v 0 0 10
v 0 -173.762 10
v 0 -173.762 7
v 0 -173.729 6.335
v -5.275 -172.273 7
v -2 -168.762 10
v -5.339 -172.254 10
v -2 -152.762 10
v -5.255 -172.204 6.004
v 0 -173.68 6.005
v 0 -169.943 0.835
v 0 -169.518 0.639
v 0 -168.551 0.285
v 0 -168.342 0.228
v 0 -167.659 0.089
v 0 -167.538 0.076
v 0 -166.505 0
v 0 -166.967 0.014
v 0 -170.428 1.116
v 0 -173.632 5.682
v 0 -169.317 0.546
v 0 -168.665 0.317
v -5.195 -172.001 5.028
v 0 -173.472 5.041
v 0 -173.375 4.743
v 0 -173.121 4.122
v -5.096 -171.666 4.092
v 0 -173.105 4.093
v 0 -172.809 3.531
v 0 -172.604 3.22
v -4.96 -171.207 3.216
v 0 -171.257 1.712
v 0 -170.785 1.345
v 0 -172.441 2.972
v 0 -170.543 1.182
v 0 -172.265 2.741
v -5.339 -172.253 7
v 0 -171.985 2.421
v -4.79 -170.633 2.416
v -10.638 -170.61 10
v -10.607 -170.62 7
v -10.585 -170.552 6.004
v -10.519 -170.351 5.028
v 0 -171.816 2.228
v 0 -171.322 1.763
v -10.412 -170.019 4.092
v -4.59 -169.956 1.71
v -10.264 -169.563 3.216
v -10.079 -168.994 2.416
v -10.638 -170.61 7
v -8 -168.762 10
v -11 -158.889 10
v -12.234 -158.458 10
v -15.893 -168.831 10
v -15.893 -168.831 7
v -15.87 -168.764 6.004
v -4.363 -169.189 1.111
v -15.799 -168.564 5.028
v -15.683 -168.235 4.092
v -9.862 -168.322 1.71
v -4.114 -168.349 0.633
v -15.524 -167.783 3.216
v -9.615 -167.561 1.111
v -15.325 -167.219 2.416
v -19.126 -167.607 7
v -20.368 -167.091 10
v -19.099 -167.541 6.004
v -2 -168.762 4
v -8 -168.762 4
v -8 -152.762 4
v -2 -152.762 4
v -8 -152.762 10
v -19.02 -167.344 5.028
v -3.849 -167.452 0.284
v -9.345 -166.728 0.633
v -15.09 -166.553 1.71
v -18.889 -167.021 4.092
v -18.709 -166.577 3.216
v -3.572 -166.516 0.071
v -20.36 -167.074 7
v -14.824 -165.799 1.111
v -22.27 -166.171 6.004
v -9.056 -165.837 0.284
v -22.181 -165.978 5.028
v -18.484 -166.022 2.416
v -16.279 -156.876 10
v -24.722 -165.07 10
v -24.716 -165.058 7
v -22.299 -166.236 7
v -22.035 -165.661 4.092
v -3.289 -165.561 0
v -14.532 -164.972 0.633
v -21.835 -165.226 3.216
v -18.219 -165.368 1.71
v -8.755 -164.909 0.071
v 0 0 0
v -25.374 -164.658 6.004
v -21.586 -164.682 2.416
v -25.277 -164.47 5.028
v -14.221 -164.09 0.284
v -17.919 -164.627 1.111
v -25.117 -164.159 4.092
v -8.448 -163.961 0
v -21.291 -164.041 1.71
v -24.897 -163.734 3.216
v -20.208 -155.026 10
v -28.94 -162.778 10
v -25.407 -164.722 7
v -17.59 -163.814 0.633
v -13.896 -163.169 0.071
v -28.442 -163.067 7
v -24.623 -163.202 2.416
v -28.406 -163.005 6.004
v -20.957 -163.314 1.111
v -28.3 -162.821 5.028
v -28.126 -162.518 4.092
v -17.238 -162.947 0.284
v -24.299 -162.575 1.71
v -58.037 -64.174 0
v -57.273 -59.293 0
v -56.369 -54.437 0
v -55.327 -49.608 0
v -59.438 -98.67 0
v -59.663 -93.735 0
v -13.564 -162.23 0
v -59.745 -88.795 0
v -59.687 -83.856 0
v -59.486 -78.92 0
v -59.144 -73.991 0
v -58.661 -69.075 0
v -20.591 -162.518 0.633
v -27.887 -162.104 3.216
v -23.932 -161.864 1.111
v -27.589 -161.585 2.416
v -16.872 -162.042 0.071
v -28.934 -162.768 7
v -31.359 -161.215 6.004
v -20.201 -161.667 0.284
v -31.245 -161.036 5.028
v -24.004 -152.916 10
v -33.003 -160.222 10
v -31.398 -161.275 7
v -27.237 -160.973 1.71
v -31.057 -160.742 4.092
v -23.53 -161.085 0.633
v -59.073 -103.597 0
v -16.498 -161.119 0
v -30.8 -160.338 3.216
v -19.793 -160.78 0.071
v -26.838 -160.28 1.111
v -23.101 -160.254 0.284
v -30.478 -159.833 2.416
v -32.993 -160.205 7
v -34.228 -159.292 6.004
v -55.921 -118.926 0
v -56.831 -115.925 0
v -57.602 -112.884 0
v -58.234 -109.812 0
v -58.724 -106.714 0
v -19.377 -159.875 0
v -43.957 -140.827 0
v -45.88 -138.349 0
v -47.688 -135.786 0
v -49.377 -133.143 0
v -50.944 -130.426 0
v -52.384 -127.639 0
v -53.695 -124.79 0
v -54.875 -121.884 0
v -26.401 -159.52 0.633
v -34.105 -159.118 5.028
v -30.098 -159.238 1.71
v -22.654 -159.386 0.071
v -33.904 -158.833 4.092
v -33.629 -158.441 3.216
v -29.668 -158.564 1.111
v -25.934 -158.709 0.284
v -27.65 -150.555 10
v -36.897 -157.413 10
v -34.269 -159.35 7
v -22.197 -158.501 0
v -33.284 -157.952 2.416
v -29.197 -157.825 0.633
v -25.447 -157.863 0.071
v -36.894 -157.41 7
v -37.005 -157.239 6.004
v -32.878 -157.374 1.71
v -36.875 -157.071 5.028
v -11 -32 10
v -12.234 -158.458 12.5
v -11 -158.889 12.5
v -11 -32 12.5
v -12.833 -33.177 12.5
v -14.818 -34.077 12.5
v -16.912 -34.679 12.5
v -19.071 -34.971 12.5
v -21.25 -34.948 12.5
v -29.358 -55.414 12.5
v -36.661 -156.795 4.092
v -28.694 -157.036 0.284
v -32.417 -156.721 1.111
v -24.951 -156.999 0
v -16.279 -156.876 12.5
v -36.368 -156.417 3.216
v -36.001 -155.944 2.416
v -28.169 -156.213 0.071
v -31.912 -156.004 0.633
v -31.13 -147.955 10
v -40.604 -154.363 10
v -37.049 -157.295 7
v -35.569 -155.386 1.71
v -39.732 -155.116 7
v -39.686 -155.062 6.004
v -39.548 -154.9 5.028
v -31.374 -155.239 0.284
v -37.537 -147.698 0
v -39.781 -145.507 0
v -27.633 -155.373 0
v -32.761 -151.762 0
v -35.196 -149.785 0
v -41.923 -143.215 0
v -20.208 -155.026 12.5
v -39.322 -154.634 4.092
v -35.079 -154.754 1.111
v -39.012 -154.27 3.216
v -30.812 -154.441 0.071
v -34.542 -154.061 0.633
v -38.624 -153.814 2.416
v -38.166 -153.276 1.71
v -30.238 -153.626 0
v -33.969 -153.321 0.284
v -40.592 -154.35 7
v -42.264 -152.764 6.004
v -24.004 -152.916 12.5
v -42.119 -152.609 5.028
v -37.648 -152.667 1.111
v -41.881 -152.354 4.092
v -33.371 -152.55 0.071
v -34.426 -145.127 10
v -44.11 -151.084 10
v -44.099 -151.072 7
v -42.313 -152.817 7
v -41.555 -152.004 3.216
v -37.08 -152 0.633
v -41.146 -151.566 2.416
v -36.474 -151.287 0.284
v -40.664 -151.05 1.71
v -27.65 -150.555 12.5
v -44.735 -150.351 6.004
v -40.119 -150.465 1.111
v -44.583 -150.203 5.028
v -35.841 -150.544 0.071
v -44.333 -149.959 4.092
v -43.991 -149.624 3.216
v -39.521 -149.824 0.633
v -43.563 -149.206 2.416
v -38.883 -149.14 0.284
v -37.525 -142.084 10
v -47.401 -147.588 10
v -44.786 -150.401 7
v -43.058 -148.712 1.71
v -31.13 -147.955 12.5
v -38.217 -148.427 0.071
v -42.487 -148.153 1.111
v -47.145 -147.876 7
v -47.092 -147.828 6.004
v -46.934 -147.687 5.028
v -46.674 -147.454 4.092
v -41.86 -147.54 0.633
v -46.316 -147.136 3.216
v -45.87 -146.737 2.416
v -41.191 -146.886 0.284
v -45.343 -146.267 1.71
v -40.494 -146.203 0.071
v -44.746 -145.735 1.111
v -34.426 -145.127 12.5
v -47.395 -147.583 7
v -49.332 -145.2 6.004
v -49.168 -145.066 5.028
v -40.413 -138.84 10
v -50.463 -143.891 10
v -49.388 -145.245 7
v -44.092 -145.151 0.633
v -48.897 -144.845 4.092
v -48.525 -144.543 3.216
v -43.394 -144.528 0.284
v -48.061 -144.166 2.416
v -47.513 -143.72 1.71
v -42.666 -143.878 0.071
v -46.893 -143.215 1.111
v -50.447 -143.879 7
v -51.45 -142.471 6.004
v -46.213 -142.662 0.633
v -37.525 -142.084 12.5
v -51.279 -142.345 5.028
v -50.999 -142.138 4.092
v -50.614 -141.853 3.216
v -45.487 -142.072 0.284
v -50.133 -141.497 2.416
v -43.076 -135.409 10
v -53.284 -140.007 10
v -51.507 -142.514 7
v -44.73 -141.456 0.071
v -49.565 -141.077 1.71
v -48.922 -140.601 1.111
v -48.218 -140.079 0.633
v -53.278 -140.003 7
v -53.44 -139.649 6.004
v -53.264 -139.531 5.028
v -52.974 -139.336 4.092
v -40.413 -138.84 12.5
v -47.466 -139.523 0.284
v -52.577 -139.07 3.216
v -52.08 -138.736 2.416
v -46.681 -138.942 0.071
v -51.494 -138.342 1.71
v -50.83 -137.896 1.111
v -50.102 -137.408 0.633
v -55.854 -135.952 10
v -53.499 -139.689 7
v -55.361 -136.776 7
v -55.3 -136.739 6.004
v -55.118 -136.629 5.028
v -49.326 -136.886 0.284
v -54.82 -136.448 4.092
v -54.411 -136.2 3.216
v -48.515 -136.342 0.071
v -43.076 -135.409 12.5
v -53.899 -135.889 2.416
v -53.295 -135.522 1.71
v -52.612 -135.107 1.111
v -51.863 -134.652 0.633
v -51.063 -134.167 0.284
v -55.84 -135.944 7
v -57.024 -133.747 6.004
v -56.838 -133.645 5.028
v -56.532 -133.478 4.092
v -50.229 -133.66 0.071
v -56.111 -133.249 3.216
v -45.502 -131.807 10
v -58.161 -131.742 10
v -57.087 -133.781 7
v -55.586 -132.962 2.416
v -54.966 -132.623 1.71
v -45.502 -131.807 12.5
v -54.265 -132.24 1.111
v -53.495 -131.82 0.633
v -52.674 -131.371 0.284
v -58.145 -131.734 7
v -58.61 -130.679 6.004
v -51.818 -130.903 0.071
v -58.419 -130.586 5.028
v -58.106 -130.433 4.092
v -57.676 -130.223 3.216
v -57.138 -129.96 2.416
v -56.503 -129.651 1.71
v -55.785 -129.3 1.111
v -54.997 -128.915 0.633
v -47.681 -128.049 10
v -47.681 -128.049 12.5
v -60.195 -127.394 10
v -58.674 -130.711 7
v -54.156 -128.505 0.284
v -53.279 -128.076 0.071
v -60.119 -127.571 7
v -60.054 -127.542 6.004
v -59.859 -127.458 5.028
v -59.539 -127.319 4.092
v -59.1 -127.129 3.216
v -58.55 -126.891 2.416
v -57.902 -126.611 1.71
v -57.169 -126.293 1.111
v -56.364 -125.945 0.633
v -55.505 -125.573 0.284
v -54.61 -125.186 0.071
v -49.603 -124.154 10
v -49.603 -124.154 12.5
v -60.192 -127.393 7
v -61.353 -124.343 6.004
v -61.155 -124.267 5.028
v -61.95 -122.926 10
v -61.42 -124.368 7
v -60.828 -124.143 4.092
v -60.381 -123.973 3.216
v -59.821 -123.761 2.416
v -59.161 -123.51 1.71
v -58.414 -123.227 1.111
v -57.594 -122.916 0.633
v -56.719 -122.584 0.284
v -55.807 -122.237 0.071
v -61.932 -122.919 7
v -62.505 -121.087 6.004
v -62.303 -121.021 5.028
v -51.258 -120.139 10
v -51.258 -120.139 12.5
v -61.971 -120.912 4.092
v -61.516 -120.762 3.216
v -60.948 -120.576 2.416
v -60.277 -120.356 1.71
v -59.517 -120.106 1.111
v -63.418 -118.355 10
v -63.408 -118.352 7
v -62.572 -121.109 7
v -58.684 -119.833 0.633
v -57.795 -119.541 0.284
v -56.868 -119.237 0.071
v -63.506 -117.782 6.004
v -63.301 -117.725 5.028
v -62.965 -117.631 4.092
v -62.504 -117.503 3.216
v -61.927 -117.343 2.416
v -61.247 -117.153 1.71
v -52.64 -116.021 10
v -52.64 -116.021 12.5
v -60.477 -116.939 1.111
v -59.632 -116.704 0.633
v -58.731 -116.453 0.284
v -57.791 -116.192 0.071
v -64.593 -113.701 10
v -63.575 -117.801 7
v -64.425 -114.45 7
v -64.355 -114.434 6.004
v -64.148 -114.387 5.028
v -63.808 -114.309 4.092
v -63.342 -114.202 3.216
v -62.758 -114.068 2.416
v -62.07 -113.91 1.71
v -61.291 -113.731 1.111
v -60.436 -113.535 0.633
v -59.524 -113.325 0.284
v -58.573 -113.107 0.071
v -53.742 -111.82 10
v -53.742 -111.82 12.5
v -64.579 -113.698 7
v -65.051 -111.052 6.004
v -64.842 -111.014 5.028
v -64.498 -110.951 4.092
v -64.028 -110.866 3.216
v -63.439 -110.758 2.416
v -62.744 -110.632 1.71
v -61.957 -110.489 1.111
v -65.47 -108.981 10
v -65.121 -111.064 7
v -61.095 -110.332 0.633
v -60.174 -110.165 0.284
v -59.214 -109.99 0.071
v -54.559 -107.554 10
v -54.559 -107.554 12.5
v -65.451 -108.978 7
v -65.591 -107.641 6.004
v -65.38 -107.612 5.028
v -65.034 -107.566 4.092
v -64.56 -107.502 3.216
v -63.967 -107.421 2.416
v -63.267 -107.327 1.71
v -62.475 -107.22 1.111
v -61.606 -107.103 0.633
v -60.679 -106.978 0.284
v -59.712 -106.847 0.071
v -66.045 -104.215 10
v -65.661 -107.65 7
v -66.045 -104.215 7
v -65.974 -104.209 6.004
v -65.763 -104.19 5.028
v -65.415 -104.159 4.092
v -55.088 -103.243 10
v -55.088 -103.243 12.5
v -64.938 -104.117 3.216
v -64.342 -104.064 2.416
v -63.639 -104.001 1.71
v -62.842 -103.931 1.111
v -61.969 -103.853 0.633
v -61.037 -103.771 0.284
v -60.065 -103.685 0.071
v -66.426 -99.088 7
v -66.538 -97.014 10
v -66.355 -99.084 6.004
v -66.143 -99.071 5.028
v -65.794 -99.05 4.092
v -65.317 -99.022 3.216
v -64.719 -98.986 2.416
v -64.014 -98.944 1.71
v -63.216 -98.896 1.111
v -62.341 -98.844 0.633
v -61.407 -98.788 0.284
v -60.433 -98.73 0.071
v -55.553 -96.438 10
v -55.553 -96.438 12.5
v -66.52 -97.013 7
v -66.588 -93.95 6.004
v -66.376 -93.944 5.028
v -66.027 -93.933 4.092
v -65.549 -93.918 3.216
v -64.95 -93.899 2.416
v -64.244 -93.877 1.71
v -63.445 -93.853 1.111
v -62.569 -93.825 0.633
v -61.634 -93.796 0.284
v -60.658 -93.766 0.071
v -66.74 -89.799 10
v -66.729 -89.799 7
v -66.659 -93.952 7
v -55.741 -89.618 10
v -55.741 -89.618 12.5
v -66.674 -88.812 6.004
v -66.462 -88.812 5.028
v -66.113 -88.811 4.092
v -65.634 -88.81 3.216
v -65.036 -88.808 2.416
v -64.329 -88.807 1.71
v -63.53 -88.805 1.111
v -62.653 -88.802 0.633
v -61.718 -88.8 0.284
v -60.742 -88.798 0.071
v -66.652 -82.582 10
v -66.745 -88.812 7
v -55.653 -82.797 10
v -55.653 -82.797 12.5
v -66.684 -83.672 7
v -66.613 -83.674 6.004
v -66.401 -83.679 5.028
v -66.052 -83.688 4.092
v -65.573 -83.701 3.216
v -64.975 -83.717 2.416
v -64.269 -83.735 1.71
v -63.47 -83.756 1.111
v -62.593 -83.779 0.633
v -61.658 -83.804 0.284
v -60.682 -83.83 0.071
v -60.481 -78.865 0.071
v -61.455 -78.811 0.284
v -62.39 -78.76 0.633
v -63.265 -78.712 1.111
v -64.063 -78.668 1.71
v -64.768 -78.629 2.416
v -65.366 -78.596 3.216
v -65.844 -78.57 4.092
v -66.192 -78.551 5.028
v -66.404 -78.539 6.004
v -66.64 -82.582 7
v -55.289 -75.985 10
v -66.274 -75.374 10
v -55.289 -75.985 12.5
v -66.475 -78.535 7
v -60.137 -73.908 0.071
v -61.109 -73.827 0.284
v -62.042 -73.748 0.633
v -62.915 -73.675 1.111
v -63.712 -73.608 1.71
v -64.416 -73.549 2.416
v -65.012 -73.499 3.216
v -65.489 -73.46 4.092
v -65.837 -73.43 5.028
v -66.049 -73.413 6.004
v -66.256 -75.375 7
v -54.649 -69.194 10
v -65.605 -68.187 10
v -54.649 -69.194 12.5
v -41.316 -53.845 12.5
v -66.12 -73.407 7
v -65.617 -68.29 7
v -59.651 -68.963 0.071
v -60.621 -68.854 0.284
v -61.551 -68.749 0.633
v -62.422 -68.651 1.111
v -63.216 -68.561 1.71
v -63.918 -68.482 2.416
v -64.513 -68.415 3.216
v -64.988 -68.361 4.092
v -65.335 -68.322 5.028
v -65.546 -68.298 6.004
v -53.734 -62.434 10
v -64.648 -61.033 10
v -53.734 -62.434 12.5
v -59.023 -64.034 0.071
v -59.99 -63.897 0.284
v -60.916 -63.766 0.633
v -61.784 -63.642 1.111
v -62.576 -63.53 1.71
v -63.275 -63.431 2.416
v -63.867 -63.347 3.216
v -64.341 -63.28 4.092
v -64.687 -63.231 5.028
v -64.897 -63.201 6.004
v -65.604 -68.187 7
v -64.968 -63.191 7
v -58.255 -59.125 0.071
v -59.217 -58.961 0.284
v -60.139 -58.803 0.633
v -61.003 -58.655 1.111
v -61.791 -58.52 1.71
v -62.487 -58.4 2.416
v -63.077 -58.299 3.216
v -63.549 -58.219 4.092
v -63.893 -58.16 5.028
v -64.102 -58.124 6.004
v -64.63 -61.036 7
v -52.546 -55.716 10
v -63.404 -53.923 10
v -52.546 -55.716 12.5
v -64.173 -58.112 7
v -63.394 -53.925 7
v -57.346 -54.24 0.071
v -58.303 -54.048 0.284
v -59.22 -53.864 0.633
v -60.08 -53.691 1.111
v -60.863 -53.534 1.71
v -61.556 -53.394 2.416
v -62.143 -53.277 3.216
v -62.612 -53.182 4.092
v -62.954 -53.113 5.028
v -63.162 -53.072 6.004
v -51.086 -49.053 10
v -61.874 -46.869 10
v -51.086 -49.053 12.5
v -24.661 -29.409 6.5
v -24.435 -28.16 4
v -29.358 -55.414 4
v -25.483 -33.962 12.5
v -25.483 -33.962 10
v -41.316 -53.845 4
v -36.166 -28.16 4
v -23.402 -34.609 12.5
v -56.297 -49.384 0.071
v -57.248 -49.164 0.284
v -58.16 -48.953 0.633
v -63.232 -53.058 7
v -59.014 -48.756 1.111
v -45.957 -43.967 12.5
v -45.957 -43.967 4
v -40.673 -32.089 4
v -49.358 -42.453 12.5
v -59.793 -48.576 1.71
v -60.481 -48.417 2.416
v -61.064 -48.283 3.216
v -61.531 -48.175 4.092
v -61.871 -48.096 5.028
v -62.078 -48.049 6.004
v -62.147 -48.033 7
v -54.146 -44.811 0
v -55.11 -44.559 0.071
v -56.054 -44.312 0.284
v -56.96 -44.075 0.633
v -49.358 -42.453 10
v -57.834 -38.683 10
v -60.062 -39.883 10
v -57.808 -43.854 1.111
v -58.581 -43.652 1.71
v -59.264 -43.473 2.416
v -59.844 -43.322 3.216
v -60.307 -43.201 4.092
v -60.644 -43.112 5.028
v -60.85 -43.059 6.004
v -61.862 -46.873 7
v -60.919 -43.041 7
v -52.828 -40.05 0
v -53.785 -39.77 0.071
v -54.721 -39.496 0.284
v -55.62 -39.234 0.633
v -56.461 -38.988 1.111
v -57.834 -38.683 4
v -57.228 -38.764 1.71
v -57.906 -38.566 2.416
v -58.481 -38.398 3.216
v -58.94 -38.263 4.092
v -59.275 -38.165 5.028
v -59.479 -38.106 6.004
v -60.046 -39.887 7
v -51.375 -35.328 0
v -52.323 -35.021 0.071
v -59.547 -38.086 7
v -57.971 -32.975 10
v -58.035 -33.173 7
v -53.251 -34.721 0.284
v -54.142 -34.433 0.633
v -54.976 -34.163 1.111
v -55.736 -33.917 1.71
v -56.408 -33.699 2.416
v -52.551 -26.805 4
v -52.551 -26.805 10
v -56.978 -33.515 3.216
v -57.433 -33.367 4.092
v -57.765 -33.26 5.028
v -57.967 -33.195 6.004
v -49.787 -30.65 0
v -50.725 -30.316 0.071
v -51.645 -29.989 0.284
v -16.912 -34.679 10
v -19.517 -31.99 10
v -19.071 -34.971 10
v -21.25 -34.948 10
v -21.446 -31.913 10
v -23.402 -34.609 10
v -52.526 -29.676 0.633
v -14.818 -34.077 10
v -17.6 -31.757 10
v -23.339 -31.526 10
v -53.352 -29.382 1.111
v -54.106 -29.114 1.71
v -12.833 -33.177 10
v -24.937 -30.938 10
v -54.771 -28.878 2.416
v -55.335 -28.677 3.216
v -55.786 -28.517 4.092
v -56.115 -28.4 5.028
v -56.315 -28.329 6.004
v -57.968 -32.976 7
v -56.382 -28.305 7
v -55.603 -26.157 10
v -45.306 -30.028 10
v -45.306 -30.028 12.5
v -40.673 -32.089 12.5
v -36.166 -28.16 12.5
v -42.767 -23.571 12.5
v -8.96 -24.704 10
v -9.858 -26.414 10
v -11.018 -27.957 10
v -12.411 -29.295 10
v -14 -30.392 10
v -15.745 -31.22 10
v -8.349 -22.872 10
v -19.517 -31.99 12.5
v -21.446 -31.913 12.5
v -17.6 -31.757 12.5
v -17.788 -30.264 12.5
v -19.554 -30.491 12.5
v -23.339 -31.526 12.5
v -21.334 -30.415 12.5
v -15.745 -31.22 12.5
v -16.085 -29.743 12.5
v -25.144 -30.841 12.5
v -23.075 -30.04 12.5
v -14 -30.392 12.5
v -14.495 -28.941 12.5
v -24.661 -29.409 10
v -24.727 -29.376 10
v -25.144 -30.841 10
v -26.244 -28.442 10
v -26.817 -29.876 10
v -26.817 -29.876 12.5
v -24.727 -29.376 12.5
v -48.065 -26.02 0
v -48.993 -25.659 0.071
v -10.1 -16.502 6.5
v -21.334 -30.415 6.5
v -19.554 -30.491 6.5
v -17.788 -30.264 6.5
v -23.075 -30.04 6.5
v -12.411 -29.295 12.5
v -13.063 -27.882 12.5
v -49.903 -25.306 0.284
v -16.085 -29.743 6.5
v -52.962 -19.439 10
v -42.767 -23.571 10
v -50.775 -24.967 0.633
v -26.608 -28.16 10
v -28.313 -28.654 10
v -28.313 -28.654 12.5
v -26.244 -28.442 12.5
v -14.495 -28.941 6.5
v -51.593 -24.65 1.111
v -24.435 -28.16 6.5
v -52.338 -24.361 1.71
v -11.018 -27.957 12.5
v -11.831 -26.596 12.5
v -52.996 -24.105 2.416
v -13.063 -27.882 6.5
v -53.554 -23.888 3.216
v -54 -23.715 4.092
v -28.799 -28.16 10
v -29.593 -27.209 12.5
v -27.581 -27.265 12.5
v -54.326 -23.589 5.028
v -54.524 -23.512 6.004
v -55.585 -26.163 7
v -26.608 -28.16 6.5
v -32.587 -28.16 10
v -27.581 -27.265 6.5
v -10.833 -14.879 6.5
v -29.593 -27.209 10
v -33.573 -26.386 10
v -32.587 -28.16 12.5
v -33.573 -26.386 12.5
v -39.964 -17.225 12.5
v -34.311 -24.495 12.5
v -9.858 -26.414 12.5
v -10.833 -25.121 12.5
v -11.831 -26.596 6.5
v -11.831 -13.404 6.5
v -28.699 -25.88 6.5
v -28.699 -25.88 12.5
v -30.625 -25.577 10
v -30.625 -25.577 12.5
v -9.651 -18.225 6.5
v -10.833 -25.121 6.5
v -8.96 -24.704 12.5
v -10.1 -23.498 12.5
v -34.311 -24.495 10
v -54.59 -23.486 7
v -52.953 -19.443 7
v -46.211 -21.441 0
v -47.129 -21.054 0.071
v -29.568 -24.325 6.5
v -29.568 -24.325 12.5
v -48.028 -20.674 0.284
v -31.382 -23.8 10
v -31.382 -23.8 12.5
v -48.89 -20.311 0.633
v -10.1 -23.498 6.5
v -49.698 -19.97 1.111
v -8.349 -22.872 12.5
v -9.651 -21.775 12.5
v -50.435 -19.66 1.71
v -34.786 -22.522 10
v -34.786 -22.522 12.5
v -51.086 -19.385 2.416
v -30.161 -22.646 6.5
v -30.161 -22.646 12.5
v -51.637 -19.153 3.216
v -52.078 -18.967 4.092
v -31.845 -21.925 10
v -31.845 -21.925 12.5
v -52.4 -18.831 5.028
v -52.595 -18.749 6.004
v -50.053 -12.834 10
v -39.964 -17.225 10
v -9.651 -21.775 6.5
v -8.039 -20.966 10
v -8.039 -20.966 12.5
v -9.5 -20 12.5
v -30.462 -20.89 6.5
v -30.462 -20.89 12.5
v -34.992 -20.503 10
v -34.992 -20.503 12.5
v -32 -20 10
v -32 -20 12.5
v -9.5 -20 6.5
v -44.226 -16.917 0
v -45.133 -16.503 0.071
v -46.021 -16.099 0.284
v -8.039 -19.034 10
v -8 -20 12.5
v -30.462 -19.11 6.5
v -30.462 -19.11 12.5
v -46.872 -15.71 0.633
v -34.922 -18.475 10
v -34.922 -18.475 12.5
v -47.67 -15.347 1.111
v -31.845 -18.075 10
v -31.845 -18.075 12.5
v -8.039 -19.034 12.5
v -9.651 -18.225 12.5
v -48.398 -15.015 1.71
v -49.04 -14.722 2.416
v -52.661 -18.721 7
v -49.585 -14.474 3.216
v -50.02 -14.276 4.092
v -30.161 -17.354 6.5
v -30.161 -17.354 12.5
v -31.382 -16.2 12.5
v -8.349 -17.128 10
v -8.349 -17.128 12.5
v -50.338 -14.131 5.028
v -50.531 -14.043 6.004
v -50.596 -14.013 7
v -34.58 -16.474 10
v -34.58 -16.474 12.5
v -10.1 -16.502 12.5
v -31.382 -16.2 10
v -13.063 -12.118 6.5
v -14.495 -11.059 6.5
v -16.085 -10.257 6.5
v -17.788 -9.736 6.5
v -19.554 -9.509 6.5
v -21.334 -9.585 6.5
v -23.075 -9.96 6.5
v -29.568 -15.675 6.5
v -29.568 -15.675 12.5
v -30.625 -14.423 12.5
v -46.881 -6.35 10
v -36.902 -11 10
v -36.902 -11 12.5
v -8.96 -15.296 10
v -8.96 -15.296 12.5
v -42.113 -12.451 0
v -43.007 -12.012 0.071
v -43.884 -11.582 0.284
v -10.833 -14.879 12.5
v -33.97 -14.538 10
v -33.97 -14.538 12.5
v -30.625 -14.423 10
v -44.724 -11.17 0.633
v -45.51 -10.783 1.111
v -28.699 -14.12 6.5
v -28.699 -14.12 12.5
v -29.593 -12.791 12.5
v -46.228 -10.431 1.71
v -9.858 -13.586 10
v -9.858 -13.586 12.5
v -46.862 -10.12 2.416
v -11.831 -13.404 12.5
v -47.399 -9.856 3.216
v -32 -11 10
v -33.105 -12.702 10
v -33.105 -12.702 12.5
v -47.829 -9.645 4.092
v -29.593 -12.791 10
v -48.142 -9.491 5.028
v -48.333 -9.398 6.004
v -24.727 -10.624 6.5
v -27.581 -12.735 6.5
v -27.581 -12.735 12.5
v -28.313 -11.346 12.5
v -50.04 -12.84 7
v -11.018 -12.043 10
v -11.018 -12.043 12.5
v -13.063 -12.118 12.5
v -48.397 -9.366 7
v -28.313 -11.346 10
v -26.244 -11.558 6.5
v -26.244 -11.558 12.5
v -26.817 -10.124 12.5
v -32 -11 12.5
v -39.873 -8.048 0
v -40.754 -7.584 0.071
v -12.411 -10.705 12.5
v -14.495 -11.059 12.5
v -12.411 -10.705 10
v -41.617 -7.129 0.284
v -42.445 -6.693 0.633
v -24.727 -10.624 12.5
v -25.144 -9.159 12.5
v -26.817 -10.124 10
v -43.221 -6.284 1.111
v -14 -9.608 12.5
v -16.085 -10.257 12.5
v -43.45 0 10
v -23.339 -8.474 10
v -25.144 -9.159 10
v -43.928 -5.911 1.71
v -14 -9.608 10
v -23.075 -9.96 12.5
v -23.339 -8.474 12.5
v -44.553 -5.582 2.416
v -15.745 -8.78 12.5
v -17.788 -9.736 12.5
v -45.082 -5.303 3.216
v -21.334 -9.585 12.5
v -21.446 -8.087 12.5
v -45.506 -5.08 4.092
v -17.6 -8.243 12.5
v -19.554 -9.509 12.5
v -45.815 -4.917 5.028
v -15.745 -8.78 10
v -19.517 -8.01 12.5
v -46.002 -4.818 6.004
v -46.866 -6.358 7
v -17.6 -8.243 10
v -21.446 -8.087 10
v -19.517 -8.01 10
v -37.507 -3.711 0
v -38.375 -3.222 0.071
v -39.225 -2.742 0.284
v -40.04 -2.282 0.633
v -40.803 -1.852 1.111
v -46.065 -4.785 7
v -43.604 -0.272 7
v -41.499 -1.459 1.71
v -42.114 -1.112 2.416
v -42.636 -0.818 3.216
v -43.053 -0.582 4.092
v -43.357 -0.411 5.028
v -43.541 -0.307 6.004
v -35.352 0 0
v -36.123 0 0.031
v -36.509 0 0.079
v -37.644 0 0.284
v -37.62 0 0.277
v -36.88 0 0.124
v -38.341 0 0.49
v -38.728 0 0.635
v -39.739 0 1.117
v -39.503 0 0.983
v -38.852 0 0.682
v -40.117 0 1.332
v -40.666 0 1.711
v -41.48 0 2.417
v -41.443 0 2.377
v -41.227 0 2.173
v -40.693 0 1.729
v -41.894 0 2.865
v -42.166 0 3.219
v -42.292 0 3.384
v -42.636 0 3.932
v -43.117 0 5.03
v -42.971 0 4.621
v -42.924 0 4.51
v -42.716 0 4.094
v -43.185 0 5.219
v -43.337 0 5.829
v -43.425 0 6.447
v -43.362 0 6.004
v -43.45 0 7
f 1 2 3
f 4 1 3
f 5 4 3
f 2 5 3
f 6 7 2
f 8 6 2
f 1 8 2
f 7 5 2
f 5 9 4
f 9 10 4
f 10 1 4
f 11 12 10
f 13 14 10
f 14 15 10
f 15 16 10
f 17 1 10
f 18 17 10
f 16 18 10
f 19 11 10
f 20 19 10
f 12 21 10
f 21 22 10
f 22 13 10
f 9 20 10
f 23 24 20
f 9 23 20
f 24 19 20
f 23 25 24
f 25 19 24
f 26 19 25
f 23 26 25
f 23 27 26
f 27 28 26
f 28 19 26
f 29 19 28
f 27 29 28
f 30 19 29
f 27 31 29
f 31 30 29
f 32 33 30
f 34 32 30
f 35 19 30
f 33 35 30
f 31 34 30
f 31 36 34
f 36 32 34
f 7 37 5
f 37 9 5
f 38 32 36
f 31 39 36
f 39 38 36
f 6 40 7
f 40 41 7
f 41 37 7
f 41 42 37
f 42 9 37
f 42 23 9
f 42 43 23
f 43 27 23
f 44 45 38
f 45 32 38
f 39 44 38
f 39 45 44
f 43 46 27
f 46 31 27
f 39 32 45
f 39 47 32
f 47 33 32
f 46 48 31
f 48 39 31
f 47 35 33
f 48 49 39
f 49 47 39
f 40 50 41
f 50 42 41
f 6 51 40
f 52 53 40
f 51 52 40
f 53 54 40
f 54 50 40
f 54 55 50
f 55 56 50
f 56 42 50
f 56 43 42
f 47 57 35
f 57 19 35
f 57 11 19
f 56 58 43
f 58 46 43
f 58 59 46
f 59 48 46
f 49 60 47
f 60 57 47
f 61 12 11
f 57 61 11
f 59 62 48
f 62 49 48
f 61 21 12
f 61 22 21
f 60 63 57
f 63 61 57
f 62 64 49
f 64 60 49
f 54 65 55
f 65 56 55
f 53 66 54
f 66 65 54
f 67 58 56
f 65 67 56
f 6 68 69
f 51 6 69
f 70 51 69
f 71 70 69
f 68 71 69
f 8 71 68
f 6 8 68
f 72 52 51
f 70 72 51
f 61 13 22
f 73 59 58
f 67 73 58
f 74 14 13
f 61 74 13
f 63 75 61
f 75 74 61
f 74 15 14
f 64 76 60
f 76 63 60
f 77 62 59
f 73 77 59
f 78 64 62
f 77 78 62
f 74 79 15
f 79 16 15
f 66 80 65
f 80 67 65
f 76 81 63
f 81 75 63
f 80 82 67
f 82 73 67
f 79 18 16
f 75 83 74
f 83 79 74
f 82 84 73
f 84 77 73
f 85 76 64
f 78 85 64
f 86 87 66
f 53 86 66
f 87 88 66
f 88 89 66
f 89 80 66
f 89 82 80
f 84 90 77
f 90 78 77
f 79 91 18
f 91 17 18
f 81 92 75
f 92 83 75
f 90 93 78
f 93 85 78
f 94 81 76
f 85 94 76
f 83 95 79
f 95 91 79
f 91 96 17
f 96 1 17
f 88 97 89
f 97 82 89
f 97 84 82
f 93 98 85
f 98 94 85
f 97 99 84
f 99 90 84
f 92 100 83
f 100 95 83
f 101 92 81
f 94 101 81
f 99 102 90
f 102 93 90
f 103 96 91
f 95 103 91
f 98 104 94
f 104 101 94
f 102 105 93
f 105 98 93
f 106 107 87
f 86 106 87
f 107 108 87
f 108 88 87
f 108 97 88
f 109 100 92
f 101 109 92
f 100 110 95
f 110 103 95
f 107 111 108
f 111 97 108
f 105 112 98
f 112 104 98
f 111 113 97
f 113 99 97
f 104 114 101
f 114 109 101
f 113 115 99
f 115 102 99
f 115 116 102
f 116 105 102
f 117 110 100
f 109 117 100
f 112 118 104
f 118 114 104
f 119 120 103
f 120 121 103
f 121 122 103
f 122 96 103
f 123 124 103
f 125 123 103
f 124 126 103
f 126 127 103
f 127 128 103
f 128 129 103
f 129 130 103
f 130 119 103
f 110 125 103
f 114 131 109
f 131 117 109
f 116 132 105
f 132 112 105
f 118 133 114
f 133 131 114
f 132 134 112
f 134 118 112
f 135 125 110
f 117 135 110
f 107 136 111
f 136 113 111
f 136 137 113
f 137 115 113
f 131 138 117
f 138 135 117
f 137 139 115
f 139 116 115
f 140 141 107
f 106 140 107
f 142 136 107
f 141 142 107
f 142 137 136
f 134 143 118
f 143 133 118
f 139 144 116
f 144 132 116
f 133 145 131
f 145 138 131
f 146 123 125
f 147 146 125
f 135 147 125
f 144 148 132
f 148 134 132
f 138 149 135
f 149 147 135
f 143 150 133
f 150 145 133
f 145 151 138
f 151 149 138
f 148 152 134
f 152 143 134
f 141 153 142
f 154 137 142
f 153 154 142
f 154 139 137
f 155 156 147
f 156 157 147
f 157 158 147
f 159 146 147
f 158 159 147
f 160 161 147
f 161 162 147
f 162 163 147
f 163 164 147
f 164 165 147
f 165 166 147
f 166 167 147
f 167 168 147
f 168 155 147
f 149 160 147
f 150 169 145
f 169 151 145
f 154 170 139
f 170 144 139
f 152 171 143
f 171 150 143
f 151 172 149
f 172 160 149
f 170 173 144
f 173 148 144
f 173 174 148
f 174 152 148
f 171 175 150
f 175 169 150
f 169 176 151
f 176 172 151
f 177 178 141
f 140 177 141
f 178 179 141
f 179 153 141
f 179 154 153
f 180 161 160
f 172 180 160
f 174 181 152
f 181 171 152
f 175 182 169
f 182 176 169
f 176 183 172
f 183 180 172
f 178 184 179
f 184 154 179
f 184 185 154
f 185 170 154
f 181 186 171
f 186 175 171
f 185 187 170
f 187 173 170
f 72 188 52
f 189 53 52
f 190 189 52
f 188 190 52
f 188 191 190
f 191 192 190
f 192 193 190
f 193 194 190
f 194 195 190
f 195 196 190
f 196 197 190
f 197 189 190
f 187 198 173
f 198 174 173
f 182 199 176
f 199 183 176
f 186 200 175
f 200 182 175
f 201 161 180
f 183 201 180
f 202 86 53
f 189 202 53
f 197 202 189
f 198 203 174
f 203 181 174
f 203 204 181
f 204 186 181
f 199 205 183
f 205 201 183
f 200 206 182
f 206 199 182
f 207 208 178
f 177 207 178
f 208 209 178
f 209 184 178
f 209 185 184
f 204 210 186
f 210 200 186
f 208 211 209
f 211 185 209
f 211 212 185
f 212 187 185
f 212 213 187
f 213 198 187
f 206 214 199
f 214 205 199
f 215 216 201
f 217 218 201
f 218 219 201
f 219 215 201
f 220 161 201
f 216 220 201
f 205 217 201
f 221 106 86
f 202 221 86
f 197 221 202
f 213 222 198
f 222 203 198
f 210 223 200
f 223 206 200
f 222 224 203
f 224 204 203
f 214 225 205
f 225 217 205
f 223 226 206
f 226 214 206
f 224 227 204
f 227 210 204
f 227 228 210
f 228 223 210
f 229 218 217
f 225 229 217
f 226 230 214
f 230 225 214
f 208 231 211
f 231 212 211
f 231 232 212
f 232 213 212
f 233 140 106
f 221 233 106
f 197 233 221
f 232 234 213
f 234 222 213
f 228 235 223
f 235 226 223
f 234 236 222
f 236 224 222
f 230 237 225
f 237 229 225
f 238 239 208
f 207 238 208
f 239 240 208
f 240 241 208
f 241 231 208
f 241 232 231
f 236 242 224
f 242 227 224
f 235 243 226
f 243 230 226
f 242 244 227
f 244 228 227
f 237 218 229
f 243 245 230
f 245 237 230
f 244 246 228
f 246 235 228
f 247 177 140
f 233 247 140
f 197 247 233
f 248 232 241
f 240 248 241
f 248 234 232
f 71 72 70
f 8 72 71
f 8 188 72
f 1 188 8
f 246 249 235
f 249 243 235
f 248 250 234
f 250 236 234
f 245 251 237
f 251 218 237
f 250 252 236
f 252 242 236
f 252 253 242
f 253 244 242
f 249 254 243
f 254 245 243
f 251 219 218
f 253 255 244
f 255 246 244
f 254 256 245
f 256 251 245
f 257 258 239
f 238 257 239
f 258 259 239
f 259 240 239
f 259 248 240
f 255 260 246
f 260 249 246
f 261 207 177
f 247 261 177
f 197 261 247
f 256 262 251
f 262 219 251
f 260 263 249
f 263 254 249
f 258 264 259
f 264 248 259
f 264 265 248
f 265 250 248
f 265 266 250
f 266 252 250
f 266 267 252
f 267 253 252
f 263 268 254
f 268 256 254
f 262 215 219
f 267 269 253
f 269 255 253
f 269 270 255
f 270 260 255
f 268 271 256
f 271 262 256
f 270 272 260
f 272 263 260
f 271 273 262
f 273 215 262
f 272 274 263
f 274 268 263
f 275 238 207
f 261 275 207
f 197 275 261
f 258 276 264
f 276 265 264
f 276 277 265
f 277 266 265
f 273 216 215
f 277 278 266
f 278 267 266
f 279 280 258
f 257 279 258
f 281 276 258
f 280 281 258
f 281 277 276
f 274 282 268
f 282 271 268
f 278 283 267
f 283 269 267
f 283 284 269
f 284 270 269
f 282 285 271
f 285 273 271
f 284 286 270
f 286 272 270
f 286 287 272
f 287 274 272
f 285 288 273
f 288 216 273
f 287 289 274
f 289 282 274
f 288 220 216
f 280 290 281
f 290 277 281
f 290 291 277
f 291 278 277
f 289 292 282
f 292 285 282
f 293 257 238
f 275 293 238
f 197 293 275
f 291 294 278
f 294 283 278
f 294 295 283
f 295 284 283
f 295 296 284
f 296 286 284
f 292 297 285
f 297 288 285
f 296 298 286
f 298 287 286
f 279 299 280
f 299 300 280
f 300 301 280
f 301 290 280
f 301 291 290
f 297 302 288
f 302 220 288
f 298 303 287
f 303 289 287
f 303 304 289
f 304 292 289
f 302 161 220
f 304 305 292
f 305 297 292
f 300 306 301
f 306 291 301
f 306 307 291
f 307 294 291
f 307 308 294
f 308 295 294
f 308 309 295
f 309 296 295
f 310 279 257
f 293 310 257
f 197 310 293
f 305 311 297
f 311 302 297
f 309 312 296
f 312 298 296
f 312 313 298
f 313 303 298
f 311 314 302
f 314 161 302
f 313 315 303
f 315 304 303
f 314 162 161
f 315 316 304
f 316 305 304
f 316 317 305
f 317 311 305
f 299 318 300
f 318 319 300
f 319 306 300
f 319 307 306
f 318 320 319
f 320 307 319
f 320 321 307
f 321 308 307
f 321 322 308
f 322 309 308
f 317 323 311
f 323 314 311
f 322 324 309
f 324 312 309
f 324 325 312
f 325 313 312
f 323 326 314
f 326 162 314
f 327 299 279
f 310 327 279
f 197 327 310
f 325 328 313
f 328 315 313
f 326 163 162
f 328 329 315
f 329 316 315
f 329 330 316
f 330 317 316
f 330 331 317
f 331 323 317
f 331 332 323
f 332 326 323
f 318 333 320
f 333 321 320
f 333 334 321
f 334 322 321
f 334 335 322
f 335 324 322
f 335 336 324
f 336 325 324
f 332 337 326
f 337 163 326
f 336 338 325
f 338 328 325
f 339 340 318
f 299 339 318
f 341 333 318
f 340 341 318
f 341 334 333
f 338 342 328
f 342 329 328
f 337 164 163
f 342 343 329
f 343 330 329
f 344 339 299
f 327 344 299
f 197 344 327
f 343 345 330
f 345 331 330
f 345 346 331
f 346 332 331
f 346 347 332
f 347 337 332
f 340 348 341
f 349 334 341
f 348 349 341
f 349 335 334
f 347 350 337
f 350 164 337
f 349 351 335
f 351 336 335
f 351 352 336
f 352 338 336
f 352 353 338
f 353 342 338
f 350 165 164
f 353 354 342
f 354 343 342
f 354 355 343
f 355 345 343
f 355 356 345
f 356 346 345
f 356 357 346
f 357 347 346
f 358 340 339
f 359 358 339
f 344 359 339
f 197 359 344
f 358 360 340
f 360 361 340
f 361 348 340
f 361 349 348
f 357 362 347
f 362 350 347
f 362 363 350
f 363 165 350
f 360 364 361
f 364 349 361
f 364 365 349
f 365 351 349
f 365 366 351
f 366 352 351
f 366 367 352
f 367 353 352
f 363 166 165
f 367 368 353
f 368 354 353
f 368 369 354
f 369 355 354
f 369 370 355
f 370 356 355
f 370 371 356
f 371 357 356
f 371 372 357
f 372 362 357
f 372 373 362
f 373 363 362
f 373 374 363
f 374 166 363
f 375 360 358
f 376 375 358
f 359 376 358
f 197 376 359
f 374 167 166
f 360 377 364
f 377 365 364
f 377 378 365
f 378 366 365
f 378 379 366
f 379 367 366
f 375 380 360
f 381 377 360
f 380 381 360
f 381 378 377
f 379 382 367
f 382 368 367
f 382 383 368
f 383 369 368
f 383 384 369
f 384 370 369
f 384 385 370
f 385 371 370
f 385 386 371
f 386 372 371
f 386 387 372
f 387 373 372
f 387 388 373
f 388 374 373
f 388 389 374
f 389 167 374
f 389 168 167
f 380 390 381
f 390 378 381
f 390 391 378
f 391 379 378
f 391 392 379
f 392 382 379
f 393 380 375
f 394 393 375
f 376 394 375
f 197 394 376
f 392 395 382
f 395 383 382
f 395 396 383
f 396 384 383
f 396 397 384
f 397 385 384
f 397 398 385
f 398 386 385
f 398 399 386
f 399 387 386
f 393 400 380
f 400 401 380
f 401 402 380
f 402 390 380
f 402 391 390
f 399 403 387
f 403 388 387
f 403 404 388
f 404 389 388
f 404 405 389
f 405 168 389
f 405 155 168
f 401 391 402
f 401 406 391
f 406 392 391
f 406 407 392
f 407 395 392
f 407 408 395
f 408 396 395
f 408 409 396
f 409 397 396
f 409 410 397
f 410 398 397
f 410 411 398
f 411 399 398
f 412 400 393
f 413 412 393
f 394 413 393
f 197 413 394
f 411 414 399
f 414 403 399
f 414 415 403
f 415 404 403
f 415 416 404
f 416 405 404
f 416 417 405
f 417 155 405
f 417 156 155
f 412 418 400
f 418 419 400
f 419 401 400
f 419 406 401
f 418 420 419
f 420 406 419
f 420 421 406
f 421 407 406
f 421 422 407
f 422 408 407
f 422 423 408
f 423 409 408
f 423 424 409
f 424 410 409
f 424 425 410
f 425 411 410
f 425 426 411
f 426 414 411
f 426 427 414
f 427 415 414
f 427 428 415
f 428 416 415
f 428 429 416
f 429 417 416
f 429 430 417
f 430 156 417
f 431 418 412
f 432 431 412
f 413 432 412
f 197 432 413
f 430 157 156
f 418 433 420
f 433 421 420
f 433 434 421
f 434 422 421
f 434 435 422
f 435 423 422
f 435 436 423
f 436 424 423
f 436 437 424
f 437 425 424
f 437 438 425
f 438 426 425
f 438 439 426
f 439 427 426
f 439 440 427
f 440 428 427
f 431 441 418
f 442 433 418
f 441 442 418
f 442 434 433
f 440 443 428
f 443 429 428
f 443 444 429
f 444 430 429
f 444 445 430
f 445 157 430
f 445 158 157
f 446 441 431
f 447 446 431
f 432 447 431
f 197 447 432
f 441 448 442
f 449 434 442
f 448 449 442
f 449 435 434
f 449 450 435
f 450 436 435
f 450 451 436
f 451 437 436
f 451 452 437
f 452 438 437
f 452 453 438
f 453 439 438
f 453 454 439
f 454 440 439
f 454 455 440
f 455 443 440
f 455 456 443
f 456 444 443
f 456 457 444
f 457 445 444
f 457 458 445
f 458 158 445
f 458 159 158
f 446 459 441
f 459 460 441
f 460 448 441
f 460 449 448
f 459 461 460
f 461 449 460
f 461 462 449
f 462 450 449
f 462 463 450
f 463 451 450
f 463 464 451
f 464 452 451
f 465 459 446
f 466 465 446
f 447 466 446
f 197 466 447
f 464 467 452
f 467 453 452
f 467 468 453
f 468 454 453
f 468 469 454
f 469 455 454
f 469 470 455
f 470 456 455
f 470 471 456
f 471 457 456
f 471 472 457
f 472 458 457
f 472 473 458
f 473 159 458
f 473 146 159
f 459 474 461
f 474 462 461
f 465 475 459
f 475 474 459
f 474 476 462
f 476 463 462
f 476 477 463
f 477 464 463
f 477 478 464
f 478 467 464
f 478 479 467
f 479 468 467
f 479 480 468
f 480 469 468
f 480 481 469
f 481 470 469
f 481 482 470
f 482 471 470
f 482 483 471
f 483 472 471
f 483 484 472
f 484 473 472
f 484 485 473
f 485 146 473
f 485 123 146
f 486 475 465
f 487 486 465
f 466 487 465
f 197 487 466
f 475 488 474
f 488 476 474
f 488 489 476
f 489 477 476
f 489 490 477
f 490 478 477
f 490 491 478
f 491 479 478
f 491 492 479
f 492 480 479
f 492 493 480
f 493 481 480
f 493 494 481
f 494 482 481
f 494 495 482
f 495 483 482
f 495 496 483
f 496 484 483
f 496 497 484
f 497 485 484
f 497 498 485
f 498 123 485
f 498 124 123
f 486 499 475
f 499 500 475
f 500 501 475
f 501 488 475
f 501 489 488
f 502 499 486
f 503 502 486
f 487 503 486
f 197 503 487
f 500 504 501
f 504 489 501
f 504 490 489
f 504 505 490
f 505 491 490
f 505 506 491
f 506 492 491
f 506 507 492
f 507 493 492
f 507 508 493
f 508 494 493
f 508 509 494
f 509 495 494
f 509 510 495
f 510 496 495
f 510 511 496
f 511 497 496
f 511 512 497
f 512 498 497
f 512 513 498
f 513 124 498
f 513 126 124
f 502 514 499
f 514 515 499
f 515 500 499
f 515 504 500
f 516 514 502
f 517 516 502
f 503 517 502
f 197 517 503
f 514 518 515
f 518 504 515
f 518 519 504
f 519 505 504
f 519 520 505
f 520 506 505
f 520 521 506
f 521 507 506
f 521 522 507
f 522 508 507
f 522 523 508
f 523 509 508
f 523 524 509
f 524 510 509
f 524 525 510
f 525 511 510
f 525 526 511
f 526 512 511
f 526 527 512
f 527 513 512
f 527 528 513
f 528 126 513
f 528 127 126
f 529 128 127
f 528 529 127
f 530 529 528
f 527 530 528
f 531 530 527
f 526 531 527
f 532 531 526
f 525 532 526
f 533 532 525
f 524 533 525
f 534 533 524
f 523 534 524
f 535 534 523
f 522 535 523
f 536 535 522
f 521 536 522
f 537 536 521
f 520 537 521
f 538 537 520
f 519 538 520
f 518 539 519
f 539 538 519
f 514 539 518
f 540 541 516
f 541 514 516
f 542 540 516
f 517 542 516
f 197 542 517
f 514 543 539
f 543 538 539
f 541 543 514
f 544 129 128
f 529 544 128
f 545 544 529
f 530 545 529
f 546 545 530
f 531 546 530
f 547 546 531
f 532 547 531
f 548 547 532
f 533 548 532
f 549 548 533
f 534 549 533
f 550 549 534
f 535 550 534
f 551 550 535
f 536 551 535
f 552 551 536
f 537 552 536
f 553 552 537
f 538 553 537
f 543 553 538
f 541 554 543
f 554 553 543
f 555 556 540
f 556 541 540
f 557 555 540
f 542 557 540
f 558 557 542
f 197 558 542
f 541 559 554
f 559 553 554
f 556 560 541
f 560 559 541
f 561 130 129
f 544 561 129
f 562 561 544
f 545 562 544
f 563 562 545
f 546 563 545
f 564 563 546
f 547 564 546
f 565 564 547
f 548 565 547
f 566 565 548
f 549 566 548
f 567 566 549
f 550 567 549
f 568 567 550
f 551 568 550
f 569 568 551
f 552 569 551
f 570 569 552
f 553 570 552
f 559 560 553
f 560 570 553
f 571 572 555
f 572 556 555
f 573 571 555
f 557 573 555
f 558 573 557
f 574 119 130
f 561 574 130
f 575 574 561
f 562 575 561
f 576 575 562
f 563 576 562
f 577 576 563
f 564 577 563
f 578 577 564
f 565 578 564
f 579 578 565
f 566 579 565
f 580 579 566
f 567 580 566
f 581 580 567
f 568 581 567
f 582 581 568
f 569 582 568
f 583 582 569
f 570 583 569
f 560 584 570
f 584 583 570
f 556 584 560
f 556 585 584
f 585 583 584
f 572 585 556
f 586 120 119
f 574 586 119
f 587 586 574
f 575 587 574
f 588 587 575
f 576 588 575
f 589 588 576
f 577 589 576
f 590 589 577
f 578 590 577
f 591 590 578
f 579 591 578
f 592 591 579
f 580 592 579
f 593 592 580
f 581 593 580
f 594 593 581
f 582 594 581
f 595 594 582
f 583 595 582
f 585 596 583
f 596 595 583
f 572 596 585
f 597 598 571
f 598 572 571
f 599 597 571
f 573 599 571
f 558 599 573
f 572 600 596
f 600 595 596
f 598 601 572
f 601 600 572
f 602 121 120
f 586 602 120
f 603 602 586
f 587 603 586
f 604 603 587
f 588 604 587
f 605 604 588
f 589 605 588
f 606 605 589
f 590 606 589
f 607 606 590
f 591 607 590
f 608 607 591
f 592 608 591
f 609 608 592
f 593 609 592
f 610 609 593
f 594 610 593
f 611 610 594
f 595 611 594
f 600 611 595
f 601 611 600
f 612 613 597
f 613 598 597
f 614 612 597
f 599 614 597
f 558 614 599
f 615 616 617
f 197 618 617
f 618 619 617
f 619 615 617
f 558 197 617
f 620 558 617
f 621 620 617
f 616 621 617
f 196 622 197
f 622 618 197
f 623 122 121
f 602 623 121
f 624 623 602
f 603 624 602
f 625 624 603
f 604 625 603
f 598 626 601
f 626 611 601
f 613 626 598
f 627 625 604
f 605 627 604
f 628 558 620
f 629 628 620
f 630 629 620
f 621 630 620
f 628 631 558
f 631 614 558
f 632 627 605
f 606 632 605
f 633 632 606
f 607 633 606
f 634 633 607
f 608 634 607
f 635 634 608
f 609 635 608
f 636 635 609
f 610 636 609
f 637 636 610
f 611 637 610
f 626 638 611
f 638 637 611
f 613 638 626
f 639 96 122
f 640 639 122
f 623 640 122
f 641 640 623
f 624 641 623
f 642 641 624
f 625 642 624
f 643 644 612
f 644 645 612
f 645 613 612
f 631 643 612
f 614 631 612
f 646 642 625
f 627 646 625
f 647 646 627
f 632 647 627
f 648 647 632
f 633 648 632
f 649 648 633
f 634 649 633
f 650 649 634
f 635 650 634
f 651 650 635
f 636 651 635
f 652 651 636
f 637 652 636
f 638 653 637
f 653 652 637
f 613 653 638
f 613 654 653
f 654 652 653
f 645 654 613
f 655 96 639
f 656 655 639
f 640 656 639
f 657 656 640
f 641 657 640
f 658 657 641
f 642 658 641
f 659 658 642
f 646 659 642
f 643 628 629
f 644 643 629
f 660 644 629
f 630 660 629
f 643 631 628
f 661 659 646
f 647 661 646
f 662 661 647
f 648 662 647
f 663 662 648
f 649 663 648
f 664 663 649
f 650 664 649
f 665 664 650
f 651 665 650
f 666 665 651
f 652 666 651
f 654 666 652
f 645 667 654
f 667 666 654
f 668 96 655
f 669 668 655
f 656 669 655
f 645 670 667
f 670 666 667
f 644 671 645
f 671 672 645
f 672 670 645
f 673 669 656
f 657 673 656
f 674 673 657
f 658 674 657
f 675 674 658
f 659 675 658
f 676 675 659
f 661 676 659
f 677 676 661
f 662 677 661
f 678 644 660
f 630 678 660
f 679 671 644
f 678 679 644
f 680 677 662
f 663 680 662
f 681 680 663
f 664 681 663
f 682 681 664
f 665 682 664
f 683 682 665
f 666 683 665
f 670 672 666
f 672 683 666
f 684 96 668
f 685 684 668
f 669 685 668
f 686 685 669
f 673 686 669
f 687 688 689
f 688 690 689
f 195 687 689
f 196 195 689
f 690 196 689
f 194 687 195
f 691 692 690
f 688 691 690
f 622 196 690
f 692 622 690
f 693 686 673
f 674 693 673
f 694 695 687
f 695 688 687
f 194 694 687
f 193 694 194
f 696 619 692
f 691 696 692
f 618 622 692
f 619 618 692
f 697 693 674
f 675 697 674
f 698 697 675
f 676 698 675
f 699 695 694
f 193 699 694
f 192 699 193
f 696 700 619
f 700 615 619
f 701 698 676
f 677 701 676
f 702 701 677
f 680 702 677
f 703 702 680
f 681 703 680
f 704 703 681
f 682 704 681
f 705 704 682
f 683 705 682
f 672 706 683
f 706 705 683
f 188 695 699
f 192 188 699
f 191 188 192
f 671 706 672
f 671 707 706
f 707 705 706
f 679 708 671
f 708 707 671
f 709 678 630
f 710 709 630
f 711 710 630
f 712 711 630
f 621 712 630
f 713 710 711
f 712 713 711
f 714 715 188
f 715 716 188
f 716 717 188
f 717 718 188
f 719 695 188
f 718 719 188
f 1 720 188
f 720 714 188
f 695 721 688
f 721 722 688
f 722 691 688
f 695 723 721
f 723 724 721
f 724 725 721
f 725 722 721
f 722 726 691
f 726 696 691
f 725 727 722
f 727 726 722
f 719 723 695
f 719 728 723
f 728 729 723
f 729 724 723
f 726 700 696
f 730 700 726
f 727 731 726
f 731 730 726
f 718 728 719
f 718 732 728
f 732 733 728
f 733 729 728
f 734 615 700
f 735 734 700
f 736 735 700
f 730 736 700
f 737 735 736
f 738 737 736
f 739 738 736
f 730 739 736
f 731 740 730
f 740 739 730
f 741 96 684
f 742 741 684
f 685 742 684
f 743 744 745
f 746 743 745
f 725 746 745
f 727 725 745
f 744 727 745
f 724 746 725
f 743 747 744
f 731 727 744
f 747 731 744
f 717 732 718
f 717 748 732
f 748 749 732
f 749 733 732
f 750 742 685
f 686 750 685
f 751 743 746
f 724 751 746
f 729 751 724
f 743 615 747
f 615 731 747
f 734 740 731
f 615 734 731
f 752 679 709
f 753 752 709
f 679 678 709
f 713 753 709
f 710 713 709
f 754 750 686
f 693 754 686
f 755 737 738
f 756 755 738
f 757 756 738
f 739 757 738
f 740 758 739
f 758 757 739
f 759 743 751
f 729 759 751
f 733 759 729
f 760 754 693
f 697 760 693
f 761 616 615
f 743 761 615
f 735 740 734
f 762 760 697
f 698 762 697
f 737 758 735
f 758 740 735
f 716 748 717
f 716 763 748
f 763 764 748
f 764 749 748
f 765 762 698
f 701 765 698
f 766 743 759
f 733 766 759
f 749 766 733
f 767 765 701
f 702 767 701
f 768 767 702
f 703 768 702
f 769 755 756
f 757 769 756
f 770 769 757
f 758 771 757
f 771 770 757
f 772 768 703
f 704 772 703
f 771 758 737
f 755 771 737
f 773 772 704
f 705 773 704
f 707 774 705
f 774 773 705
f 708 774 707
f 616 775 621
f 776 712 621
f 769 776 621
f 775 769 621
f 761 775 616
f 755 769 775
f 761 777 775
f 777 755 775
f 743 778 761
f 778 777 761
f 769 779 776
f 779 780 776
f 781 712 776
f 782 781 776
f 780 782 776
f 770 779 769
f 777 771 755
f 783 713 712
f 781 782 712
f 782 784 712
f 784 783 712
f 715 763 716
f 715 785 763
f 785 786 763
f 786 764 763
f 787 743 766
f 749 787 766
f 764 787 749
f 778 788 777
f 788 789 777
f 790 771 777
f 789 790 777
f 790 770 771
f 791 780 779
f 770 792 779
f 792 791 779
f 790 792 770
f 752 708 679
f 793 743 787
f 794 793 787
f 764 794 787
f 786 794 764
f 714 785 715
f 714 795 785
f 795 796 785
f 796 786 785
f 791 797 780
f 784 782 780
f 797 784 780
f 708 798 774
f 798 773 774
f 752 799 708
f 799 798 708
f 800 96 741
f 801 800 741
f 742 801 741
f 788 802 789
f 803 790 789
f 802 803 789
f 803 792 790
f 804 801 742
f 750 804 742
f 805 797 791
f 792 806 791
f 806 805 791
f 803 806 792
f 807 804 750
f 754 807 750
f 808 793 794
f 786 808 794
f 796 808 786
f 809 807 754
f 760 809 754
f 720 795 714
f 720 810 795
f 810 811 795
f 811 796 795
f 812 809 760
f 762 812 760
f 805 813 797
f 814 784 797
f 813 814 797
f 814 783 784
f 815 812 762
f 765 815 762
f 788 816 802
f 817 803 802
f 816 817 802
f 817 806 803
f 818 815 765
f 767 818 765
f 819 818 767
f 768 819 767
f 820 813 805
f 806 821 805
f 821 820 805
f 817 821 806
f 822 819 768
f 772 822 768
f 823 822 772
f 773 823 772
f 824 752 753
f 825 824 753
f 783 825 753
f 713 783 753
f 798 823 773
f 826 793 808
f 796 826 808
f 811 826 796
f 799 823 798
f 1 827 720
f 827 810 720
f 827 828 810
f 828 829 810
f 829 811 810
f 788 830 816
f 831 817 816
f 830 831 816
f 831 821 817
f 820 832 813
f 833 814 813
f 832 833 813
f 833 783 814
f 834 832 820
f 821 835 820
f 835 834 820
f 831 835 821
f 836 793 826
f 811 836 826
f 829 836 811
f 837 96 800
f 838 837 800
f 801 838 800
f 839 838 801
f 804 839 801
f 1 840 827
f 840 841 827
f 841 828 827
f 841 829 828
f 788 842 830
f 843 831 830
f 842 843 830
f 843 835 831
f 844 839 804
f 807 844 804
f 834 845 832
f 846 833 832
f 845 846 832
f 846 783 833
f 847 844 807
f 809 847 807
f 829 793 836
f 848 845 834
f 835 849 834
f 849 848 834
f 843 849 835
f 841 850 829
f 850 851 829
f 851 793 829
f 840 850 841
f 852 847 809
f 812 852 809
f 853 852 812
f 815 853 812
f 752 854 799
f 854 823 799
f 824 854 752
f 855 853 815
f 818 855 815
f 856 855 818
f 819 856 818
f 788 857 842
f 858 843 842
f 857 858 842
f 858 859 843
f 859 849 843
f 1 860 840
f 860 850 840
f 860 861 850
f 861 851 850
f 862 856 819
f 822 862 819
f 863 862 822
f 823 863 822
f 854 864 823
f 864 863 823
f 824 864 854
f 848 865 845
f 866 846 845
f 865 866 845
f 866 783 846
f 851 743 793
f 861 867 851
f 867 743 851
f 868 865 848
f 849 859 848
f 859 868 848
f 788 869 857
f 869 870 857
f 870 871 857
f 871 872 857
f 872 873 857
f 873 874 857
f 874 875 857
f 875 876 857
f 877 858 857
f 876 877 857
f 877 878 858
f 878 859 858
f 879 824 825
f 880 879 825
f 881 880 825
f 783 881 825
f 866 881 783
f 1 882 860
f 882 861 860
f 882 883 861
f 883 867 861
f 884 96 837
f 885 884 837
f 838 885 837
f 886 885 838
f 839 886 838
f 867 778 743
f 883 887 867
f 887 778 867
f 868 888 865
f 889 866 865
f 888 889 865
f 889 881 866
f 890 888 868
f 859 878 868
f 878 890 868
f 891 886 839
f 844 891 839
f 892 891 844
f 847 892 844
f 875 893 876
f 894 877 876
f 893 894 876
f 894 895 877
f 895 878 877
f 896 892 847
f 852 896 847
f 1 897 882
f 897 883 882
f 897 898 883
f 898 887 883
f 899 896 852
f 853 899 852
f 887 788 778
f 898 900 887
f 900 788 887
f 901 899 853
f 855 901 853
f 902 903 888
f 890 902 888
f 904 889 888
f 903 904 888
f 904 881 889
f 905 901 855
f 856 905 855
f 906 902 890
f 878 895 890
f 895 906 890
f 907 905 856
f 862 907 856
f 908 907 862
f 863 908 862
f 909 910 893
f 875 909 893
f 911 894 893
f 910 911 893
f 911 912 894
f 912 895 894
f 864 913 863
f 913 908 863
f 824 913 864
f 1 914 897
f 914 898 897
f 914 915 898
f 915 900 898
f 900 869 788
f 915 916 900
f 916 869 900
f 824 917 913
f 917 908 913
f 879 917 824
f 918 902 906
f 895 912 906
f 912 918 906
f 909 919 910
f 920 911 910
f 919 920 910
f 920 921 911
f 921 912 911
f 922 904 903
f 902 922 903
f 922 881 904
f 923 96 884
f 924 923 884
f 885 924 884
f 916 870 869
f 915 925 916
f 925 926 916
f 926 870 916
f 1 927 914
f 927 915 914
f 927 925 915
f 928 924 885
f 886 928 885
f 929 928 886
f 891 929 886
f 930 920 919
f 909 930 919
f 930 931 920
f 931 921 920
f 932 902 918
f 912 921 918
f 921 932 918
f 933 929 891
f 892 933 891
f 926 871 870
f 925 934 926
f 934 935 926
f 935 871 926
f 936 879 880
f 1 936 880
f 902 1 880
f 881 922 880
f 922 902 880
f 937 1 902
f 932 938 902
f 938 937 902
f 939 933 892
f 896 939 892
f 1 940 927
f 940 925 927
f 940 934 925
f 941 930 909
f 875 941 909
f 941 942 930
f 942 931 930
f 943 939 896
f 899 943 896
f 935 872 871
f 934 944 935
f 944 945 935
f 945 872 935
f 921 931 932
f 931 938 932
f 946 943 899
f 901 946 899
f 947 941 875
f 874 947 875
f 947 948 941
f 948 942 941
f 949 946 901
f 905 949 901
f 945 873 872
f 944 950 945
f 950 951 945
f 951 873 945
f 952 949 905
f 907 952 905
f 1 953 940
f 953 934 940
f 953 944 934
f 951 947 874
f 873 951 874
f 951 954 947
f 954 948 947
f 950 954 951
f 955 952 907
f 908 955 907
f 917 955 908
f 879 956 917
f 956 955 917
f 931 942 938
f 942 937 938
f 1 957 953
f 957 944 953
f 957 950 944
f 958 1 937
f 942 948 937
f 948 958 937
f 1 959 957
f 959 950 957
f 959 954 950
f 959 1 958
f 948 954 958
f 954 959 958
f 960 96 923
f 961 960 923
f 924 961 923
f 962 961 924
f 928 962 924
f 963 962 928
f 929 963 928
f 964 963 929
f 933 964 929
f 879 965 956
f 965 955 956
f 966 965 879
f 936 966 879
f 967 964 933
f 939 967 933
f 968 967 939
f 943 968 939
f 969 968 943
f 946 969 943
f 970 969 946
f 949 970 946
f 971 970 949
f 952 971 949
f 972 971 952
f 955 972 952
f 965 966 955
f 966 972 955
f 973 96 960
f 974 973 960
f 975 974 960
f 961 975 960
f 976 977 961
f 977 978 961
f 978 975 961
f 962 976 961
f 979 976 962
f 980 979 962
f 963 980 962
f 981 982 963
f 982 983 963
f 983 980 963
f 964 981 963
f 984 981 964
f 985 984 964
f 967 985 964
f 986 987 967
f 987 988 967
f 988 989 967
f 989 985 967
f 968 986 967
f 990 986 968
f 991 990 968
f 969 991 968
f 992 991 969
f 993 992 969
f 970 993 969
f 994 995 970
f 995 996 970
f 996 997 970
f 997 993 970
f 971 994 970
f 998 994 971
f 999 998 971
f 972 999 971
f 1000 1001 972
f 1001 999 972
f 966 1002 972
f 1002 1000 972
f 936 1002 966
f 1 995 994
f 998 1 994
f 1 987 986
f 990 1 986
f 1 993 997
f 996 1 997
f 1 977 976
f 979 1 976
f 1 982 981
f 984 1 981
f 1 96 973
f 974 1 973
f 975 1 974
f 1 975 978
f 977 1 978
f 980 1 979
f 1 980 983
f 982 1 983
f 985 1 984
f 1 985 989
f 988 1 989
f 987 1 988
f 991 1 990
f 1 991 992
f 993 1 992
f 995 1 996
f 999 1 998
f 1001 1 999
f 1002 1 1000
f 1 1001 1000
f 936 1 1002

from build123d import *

# Parameters (mm, degrees)
BOSS_EXTRUDE1_DEPTH = 10
FILLET1_R           = 7
CUT_EXTRUDE5_DEPTH  = 6
BOSS_EXTRUDE2_DEPTH = 2.5
SKETCH10_R          = 12
BOSS_EXTRUDE3_DEPTH = 2.5
SKETCH11_R          = 10.5
CUT_EXTRUDE6_DEPTH  = 6
SKETCH12_W          = 6
SKETCH12_H          = 16
CUT_EXTRUDE7_DEPTH  = 6


with BuildPart() as part:
    # Sketch1 → Boss-Extrude1 (new body)
    with BuildSketch(Plane.XY):
        with BuildLine():
            Line((0, 0), (-43.45, 0))
            ThreePointArc((-43.45, 0), (-62.674676093, -50.388720896), (-66.045303679, -104.214831977))
            ThreePointArc((-66.045303679, -104.214831977), (-50.462862729, -143.891349815), (-15.893438709, -168.83114646))
            ThreePointArc((-15.893438709, -168.83114646), (-7.994010798, -171.448872708), (0, -173.76171585))
            Line((0, -173.76171585), (0, 0))
        make_face()
    extrude(amount=BOSS_EXTRUDE1_DEPTH)

    # Fillet1
    fillet1_edges = [part.edges().sort_by_distance(p)[0] for p in [
        (-7.994010798, -171.448872708, 0),
        (-50.462862729, -143.891349815, 0),
        (-62.674676093, -50.388720896, 0),
    ]]
    fillet(fillet1_edges, radius=FILLET1_R)

    # Sketch7 → Cut-Extrude5 (cut)
    with BuildSketch(Plane.XY.offset(10)):
        Polygon((-55.192518946, -32.743925992), (-52.550619838, -26.805039808), (-40.67284747, -32.088838025), (-36.166399237, -28.159530493), (-24.434809325, -28.159530493), (-29.358040317, -55.413615039), (-41.316202905, -53.845312659), (-45.956645687, -43.966610392), (-57.834418054, -38.682812175), align=None)
    extrude(amount=-CUT_EXTRUDE5_DEPTH, mode=Mode.SUBTRACT)

    # Sketch9 → Boss-Extrude2 (add)
    with BuildSketch(Plane.XY.offset(10)):
        with BuildLine():
            Line((-11, -158.888662803), (-11, -32))
            ThreePointArc((-11, -32), (-17.986369061, -34.864228552), (-25.482975715, -33.961983287))
            Line((-25.482975715, -33.961983287), (-29.358040317, -55.413615039))
            Line((-29.358040317, -55.413615039), (-41.316202905, -53.845312659))
            Line((-41.316202905, -53.845312659), (-45.956645687, -43.966610392))
            Line((-45.956645687, -43.966610392), (-49.358199776, -42.453437309))
            ThreePointArc((-49.358199776, -42.453437309), (-55.003200537, -72.586352384), (-55.088286823, -103.243347748))
            ThreePointArc((-55.088286823, -103.243347748), (-41.773132254, -137.146827277), (-12.233650883, -158.457817531))
            ThreePointArc((-12.233650883, -158.457817531), (-11.617167152, -158.674218597), (-11, -158.888662803))
        make_face()
        with BuildLine():
            Line((-32, -11), (-36.901831421, -11))
            ThreePointArc((-36.901831421, -11), (-41.398196048, -20.383917403), (-45.30604713, -30.027770398))
            Line((-45.30604713, -30.027770398), (-40.67284747, -32.088838025))
            Line((-40.67284747, -32.088838025), (-36.166399237, -28.159530493))
            Line((-36.166399237, -28.159530493), (-32.586582623, -28.159530493))
            ThreePointArc((-32.586582623, -28.159530493), (-34.991243543, -19.487538254), (-32, -11))
        make_face()
    extrude(amount=BOSS_EXTRUDE2_DEPTH)

    # Sketch10 → Boss-Extrude3 (add)
    with BuildSketch(Plane.XY.offset(10)):
        with Locations((-20, -20)):
            Circle(SKETCH10_R)
    extrude(amount=BOSS_EXTRUDE3_DEPTH)

    # Sketch11 → Cut-Extrude6 (cut)
    with BuildSketch(Plane.XY.offset(12.5)):
        with Locations((-20, -20)):
            Circle(SKETCH11_R)
    extrude(amount=-CUT_EXTRUDE6_DEPTH, mode=Mode.SUBTRACT)

    # Sketch12 → Cut-Extrude7 (cut)
    with BuildSketch(Plane.XY.offset(10)):
        with Locations((-5, -160.76171585)):
            Rectangle(SKETCH12_W, SKETCH12_H)
    extrude(amount=-CUT_EXTRUDE7_DEPTH, mode=Mode.SUBTRACT)


solid = part.part
